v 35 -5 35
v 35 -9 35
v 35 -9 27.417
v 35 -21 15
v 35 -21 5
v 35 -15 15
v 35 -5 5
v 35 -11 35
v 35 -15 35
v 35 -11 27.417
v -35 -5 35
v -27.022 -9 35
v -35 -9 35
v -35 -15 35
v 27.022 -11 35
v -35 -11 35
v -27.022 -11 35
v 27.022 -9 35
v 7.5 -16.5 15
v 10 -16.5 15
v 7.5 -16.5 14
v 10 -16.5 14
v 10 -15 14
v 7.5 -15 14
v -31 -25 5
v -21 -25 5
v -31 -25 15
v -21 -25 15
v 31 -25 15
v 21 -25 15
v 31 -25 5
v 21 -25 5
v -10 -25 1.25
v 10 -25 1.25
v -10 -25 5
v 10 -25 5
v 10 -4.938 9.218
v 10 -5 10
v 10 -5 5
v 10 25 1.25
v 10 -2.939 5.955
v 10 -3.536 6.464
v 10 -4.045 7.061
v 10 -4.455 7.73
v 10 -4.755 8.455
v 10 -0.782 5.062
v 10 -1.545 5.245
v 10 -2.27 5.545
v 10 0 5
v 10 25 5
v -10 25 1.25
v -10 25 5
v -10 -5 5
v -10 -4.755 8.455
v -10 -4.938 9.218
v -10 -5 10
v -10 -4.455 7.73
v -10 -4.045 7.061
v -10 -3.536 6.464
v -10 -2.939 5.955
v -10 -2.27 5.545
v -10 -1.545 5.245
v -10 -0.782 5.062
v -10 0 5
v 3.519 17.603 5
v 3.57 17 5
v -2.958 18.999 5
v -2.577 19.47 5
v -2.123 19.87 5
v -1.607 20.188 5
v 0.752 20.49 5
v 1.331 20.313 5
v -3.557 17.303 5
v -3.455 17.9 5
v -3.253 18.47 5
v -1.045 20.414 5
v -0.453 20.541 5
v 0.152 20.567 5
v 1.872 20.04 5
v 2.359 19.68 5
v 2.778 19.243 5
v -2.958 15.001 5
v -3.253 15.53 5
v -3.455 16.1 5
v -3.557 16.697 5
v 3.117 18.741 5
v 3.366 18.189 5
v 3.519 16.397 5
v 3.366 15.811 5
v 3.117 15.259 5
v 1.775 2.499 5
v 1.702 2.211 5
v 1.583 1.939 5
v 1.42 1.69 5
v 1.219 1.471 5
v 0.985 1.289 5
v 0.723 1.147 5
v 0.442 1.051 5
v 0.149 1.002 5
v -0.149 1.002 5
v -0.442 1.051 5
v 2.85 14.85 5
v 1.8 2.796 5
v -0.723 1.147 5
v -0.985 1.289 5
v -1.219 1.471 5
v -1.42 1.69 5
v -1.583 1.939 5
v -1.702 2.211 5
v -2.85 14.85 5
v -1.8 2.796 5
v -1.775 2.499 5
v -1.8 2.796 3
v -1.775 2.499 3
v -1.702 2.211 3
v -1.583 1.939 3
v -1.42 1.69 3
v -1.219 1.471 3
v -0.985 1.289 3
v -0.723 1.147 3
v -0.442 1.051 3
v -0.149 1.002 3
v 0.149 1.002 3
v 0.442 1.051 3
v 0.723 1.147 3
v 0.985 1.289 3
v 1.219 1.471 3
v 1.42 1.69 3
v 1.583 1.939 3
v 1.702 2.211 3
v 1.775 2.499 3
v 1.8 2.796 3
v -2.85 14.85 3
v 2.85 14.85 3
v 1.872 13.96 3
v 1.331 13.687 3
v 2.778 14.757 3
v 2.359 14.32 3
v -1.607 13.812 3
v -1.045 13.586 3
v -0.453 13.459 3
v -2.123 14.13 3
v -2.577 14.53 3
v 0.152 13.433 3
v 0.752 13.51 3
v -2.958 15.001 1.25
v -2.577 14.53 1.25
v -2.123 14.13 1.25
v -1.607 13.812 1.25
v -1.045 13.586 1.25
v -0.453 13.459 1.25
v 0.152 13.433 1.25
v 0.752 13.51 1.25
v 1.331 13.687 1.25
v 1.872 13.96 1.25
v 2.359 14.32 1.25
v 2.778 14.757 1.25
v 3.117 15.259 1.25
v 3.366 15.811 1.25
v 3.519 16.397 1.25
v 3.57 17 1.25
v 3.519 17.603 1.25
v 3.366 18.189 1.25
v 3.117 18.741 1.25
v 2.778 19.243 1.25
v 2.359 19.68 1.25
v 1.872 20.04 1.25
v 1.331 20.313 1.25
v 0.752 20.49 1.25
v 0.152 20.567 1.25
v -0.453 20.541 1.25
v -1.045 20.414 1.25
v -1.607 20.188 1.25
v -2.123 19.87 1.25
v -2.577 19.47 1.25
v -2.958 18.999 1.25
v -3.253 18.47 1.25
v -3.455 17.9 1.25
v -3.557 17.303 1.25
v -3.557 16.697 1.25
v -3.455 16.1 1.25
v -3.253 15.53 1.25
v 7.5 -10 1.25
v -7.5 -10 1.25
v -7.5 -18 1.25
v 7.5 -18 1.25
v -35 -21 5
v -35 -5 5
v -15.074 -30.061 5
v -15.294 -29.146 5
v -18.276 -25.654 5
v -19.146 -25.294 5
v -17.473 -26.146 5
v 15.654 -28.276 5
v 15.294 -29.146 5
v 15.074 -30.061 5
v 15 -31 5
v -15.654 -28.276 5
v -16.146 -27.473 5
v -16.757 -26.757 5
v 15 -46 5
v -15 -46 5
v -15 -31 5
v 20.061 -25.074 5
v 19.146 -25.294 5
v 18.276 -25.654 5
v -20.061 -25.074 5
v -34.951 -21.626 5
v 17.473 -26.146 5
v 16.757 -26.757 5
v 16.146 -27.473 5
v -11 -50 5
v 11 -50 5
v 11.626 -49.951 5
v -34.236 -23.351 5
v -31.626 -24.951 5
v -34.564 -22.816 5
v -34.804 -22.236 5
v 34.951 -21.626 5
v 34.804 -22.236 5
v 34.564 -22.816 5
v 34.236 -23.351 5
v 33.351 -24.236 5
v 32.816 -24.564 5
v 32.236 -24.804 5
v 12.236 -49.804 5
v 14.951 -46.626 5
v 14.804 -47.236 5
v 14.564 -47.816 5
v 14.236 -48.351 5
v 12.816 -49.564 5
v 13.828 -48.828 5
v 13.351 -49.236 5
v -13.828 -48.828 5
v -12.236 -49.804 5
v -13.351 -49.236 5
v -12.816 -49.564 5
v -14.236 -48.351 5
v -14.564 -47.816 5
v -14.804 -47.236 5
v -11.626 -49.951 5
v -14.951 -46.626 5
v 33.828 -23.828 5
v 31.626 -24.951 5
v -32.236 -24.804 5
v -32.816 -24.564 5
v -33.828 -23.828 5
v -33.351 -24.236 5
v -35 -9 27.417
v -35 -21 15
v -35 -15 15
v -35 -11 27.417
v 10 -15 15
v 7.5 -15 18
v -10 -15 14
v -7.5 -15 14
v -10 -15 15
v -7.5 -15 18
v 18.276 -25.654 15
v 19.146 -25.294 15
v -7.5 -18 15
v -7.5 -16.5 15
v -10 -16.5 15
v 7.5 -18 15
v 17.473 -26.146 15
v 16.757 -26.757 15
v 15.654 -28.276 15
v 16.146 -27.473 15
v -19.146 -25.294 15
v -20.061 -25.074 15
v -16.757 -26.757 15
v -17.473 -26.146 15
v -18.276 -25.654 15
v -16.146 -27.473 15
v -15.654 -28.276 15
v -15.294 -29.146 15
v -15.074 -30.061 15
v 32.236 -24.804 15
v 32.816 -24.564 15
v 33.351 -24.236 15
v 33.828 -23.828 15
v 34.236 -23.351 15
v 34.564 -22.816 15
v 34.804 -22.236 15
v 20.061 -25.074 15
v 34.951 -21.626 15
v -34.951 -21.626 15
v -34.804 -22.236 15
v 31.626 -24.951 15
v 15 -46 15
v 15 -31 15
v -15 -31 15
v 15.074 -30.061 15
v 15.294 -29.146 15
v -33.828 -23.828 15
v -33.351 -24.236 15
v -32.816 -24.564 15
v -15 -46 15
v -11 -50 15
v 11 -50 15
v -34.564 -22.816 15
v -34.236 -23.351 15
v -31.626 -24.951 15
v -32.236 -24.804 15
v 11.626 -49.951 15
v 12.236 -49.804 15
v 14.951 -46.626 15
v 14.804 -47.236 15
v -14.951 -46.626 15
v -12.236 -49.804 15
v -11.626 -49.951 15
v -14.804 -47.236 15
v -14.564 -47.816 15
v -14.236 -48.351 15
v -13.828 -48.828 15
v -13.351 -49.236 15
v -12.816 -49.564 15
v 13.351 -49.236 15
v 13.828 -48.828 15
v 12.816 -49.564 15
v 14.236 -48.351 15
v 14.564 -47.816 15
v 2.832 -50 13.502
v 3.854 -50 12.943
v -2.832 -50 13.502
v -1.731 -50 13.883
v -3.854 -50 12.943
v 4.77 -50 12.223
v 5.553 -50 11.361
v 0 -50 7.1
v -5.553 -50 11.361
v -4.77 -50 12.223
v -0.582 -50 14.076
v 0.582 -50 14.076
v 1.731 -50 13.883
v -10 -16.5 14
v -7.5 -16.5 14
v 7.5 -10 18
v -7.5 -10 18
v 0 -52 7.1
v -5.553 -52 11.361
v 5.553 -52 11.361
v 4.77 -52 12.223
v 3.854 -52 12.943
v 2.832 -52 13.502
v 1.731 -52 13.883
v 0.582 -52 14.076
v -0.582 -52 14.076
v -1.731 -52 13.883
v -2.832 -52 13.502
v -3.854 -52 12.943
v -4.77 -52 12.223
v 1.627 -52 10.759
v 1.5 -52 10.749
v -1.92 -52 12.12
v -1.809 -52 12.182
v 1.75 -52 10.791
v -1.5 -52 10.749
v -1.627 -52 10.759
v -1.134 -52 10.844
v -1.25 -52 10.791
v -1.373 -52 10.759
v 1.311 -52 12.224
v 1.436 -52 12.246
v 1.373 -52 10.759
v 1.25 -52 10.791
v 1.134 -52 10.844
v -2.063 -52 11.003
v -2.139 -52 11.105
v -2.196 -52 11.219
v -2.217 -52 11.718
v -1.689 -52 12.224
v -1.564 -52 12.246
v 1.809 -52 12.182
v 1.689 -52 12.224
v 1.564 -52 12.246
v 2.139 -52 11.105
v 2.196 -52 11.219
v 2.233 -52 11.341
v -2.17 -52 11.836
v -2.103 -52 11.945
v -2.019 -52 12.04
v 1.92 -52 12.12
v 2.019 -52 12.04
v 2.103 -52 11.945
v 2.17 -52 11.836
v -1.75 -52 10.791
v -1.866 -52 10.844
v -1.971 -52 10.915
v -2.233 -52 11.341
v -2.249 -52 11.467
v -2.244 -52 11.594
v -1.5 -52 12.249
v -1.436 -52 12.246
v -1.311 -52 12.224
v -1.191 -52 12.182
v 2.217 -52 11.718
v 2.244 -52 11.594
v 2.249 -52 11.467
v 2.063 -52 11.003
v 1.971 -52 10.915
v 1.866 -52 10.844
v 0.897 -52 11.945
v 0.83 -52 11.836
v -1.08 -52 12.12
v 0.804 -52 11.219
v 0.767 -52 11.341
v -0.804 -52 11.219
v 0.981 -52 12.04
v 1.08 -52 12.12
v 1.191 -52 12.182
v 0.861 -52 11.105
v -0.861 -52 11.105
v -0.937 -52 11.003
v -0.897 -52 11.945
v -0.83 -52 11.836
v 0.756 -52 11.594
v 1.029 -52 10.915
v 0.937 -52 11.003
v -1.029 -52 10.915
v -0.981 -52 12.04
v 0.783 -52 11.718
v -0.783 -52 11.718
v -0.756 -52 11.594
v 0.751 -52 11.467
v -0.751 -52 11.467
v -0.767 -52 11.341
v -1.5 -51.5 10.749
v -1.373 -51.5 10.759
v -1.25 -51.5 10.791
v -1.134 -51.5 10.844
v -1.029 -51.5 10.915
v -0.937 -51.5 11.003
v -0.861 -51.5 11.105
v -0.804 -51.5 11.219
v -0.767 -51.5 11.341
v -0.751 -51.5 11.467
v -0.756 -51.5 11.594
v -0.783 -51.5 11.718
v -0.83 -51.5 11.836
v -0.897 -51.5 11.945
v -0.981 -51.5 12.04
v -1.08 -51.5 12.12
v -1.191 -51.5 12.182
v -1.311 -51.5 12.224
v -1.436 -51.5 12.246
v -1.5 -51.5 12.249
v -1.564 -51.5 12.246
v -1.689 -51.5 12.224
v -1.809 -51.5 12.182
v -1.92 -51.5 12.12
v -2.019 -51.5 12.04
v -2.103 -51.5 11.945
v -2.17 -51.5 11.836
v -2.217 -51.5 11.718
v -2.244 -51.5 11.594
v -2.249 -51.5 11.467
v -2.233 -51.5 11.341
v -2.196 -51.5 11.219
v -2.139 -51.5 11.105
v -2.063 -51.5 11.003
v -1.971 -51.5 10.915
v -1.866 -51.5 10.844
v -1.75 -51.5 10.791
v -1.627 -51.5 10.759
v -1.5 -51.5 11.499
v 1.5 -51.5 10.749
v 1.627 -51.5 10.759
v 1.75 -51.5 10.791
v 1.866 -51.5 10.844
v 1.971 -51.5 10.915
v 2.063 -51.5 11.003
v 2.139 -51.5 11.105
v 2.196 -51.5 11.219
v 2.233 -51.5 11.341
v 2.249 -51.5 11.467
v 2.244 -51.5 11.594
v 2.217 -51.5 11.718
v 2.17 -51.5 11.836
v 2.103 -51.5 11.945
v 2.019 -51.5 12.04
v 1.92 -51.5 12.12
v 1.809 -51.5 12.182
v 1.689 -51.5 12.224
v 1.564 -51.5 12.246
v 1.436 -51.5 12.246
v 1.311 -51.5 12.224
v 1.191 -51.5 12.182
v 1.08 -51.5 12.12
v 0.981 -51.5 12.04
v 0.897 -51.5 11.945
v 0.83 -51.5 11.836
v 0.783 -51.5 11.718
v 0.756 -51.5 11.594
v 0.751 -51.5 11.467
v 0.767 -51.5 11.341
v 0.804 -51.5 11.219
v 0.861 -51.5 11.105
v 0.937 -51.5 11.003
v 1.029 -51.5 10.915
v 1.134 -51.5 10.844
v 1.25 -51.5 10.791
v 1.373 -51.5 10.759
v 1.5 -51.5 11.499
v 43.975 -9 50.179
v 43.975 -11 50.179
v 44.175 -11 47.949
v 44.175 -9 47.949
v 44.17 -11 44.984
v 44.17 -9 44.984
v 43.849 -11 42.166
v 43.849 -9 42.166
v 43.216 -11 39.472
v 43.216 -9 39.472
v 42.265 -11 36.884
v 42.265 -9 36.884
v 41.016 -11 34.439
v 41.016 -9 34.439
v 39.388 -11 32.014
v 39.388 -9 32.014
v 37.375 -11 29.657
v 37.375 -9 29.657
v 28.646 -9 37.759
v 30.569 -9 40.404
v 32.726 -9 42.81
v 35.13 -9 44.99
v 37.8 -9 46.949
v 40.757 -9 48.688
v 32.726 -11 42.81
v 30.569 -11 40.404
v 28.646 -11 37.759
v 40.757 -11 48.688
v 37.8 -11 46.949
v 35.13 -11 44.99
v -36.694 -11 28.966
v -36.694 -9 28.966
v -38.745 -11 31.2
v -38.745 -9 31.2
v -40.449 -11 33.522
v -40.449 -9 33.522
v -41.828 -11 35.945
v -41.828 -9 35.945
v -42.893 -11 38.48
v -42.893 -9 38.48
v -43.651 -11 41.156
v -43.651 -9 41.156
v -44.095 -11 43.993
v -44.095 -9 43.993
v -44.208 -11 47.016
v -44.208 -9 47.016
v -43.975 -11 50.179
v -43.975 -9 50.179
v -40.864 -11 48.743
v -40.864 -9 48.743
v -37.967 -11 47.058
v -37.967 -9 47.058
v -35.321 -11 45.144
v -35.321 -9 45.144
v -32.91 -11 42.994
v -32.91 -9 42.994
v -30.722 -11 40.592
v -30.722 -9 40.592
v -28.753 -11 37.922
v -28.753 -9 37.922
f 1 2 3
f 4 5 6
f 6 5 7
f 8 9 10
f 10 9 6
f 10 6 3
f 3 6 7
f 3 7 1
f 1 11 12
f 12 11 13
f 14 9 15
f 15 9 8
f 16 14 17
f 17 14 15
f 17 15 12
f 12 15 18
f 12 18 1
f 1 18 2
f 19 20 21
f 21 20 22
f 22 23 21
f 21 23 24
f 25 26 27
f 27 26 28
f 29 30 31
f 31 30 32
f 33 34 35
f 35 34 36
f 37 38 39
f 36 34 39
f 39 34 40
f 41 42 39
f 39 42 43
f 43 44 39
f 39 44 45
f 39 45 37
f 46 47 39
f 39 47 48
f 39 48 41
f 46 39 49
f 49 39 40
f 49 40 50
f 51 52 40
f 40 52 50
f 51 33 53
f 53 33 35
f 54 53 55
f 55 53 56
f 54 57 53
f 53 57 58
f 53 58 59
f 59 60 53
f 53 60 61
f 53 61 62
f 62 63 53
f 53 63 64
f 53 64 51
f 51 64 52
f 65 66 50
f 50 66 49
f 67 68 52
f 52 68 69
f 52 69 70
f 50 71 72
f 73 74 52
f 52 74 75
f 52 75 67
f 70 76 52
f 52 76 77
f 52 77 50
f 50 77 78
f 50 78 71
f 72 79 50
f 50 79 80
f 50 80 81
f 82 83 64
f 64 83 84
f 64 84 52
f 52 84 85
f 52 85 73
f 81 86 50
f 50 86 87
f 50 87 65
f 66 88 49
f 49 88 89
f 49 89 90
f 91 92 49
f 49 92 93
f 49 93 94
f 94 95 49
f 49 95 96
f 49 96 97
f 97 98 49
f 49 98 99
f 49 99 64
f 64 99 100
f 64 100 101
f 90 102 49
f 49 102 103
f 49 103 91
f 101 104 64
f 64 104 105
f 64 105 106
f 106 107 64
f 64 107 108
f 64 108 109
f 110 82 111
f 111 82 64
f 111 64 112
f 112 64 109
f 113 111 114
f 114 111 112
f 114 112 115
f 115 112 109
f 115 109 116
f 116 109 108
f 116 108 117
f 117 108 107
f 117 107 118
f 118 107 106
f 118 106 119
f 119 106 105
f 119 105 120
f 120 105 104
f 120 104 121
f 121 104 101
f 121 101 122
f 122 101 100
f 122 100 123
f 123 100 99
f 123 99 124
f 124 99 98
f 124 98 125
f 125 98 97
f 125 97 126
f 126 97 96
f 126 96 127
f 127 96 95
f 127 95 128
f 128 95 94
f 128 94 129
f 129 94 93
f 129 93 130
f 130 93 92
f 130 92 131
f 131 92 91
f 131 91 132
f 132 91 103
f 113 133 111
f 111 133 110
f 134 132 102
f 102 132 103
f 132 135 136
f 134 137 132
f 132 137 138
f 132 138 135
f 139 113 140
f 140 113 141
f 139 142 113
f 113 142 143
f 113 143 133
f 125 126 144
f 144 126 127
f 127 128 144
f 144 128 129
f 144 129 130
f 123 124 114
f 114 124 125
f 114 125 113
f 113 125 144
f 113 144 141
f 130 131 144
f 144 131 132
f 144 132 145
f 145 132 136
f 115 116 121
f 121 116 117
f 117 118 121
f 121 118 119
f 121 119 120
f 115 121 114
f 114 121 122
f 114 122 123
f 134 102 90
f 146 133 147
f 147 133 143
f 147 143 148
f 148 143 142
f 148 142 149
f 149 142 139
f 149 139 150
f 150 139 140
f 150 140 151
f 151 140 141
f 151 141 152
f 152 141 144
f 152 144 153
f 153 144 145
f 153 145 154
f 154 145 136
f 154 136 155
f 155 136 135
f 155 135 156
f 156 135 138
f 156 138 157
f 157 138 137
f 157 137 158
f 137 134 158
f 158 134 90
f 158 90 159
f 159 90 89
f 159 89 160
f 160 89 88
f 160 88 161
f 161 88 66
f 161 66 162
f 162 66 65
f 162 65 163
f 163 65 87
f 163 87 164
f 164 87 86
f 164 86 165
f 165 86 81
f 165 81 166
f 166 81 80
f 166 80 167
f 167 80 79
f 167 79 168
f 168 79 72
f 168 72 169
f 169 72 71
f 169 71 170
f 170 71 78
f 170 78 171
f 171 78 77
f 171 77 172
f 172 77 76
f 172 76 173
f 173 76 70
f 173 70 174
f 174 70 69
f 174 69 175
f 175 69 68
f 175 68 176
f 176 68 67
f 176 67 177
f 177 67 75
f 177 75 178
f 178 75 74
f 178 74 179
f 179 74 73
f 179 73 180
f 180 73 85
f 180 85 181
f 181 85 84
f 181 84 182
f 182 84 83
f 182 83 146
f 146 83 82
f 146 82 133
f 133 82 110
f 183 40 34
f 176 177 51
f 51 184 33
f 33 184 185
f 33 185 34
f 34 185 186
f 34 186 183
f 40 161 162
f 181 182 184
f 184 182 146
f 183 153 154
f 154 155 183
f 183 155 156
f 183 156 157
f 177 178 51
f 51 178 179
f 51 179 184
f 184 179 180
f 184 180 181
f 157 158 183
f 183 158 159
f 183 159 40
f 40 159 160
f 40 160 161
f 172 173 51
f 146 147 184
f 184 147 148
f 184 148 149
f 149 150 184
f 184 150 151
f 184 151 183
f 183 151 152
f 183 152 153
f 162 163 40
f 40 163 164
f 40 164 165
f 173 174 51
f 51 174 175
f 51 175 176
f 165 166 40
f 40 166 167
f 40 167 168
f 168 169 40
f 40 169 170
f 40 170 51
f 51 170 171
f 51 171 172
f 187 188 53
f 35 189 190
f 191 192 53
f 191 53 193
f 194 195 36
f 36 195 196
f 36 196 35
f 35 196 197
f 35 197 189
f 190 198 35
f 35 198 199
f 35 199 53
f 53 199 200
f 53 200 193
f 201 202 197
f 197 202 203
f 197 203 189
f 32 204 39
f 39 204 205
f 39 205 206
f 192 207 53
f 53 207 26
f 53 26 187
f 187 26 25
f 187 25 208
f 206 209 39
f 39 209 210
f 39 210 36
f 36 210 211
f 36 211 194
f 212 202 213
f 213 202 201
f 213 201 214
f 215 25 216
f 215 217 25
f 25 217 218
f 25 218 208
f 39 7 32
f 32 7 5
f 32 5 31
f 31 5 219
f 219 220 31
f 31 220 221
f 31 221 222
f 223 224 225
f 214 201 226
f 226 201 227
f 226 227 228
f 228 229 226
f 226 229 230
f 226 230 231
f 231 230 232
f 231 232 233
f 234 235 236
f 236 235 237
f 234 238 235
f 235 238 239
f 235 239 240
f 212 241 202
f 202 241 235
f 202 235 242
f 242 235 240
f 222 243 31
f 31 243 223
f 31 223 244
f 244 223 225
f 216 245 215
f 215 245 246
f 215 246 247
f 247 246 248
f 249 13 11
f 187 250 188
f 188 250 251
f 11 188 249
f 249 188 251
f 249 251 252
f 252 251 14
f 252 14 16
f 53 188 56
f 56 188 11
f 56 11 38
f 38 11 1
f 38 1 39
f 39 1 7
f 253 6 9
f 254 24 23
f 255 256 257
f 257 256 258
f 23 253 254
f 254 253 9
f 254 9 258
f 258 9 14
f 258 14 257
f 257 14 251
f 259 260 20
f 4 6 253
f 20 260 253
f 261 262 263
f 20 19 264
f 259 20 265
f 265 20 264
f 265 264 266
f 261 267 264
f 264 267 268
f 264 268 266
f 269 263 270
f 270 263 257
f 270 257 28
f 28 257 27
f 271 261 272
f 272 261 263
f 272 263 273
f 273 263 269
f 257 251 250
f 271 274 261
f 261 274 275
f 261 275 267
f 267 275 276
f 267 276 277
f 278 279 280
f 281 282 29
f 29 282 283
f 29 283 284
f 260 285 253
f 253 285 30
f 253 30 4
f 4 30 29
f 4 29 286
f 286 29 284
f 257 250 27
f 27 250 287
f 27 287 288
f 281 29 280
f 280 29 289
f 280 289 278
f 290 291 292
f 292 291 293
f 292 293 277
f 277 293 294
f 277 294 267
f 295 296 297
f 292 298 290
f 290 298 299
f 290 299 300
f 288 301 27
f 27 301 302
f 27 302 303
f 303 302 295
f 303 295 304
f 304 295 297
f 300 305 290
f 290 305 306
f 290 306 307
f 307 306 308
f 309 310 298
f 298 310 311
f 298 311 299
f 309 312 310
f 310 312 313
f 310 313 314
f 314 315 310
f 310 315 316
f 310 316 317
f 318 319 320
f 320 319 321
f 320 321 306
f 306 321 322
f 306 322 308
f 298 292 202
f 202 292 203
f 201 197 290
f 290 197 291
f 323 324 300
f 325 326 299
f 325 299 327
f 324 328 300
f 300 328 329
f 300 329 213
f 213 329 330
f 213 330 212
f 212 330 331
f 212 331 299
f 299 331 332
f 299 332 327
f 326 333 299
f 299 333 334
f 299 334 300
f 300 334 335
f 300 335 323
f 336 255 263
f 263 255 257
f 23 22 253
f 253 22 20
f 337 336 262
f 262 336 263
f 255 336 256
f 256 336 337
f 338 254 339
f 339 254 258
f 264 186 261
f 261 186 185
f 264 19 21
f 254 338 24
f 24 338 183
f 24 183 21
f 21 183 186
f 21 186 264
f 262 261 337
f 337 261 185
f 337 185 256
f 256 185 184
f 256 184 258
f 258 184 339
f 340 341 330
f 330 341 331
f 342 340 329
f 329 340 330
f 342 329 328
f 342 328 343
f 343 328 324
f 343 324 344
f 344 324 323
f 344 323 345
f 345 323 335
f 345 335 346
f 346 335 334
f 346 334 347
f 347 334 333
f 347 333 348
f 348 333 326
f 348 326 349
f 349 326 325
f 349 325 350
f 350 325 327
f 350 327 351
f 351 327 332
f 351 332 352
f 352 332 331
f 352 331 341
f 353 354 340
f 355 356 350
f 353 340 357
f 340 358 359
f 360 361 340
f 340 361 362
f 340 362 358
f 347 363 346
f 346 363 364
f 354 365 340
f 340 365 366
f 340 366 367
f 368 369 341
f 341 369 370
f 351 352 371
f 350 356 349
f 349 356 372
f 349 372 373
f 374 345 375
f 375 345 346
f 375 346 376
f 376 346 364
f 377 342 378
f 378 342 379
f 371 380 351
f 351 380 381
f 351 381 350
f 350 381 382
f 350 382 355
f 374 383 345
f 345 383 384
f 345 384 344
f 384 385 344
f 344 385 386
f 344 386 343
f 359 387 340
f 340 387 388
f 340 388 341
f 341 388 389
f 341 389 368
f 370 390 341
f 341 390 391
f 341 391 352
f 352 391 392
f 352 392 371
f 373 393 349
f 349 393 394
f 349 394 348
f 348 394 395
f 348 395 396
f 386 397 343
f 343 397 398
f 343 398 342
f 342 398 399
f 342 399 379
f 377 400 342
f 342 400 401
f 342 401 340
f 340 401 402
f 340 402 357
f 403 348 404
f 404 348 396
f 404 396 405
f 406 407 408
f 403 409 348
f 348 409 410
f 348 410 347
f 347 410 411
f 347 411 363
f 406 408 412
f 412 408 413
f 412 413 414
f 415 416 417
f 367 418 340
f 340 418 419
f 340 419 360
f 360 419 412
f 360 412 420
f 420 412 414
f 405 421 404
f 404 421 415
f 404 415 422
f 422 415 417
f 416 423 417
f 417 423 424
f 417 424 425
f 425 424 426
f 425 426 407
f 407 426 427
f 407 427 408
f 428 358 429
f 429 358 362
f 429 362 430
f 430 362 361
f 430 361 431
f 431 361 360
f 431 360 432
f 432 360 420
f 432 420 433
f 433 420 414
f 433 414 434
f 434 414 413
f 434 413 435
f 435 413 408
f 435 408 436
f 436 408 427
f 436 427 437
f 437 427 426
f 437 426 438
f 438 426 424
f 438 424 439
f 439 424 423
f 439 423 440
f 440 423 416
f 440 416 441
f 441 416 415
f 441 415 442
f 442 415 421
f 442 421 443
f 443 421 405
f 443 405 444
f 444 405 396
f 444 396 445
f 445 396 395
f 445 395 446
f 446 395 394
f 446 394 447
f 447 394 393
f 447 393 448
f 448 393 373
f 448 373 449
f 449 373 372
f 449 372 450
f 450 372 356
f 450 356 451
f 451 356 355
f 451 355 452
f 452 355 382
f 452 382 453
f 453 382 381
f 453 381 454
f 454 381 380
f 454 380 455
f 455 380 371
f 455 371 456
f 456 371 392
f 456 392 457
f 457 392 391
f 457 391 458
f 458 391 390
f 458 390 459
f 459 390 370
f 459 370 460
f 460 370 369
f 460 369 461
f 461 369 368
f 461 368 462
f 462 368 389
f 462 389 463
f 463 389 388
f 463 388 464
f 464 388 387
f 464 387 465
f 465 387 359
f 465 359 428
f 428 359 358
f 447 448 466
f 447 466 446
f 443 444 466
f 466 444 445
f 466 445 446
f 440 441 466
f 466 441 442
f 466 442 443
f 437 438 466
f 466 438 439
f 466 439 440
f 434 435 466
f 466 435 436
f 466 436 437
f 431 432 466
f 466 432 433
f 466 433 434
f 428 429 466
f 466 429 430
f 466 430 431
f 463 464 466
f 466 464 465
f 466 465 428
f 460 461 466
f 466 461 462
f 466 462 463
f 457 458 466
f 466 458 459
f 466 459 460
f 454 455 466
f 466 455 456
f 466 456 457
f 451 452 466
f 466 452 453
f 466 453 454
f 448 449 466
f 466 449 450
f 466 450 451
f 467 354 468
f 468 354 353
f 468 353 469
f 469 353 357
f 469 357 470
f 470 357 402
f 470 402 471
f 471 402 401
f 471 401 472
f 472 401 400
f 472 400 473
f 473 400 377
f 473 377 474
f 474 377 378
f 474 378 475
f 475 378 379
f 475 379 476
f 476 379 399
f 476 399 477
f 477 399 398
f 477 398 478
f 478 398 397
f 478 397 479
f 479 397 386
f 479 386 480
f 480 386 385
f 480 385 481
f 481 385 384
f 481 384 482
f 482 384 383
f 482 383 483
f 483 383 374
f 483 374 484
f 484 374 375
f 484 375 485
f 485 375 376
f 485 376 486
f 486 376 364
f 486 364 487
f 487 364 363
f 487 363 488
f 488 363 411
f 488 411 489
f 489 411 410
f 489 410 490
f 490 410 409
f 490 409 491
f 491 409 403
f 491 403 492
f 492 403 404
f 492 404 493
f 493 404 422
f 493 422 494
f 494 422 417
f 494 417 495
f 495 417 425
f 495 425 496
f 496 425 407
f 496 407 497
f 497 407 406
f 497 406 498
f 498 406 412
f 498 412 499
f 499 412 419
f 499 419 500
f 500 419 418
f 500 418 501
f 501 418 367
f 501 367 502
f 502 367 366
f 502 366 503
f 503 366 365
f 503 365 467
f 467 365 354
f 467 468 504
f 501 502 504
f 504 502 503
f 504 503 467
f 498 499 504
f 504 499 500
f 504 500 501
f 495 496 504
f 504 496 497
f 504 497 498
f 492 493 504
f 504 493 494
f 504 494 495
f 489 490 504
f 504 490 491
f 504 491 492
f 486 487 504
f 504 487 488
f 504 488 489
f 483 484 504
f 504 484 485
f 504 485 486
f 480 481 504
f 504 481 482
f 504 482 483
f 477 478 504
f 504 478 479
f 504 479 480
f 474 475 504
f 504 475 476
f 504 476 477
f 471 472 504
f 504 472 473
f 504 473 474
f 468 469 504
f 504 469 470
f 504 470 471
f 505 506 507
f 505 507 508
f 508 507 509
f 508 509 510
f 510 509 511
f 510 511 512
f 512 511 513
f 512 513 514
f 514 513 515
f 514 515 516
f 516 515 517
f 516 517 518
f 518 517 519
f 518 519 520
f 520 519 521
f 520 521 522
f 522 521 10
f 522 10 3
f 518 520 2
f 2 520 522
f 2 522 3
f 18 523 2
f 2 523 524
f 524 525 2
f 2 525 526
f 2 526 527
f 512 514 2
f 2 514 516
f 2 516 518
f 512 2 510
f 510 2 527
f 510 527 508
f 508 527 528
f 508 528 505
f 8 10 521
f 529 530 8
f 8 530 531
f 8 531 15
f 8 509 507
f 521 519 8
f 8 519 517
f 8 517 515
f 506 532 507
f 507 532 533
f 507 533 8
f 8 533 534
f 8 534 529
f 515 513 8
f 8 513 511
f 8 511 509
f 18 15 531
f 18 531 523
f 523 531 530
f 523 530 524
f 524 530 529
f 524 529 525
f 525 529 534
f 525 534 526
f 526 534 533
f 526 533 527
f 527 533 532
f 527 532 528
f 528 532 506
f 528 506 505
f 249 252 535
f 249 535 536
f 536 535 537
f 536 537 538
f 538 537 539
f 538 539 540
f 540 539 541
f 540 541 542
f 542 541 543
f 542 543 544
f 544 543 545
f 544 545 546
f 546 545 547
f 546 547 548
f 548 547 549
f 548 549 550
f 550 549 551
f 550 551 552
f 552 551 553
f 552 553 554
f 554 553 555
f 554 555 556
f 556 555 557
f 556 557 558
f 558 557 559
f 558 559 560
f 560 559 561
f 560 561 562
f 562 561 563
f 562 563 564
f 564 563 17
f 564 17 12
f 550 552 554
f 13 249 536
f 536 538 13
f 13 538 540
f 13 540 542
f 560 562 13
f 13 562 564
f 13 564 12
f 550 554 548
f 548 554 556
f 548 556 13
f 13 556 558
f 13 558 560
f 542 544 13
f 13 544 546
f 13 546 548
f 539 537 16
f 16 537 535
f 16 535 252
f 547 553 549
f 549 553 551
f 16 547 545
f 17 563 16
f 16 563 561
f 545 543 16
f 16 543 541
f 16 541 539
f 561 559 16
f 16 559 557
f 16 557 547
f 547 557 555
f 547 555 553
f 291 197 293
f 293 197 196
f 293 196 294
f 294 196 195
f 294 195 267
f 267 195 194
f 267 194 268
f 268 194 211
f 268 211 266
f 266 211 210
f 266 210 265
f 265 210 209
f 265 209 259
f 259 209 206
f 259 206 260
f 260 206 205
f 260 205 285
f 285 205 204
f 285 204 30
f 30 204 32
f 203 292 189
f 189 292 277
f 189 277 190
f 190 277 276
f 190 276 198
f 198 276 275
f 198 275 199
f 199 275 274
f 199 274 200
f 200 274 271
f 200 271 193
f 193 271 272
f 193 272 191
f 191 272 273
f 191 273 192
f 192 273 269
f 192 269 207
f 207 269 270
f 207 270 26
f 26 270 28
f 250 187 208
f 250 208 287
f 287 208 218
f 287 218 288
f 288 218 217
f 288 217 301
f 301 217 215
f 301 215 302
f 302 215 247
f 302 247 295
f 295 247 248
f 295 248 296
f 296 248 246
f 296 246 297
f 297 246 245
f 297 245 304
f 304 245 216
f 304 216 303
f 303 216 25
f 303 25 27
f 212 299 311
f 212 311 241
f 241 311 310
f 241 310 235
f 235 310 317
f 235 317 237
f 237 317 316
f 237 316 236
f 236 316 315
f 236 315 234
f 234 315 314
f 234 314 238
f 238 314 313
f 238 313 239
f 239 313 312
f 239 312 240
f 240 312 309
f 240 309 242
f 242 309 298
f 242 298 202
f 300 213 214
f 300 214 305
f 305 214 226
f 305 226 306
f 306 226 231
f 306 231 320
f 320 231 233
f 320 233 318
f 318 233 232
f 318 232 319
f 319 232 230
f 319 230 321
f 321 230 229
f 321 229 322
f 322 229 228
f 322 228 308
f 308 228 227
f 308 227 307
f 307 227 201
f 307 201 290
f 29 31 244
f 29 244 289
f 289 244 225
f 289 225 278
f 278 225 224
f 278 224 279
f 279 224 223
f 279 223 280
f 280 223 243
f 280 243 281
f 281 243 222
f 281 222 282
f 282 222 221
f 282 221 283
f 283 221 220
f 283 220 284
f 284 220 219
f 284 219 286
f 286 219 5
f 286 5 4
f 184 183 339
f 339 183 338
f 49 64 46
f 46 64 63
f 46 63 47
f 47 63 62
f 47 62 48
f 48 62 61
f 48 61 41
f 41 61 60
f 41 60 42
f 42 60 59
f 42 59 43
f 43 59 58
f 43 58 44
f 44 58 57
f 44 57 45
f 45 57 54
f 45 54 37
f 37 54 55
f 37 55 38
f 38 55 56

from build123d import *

# Parameters (mm, degrees)
SKETCH3_W            = 20
SKETCH3_H            = 50
BOSS_EXTRUDE3_DEPTH  = 5
CUT_EXTRUDE2_DEPTH   = 2
SKETCH6_R            = 3.57
CUT_EXTRUDE3_DEPTH   = 3
SKETCH8_W            = 1.25
SKETCH8_H            = 50
CUT_EXTRUDE5_DEPTH   = 30
SKETCH9_W            = 70
SKETCH9_H            = 20
BOSS_EXTRUDE4_DEPTH  = 20
SKETCH10_W           = 70
SKETCH10_H           = 10
CUT_EXTRUDE6_DEPTH   = 10
SKETCH11_W           = 30
SKETCH11_H           = 10
BOSS_EXTRUDE5_DEPTH  = 25
SKETCH12_W           = 20
SKETCH12_H           = 1.5
CUT_EXTRUDE7_DEPTH   = 1
SKETCH13_W           = 15
SKETCH13_H           = 38.806898948
CUT_EXTRUDE8_DEPTH   = 13
BOSS_EXTRUDE6_DEPTH  = 2
SKETCH16_R           = 0.75
CUT_EXTRUDE9_DEPTH   = 0.5
SKETCH19_W           = 70
SKETCH19_H           = 10
BOSS_EXTRUDE8_DEPTH  = 10
BOSS_EXTRUDE9_DEPTH  = 2
FILLET1_R            = 6
FILLET2_R            = 4
SKETCH22_W           = 15
SKETCH22_H           = 5
BOSS_EXTRUDE10_DEPTH = 25
FILLET3_R            = 5


with BuildPart() as part:
    # Sketch3 → Boss-Extrude3 (new body)
    with BuildSketch(Plane.XY):
        Rectangle(SKETCH3_W, SKETCH3_H)
    extrude(amount=BOSS_EXTRUDE3_DEPTH)

    # Sketch4 → Cut-Extrude2 (cut)
    with BuildSketch(Plane.XY.offset(5)):
        with BuildLine():
            Line((-2.85, 14.850023256), (-1.8, 2.795667197))
            Line((-1.8, 2.795667197), (1.8, 2.795667197))
            Line((1.8, 2.795667197), (2.85, 14.850023256))
            ThreePointArc((2.85, 14.850023256), (0, 13.43), (-2.85, 14.850023256))
        make_face()
        with BuildLine():
            Line((1.8, 2.795667197), (-1.8, 2.795667197))
            ThreePointArc((-1.8, 2.795667197), (0, 0.995667197), (1.8, 2.795667197))
        make_face()
        with BuildLine():
            ThreePointArc((3.57, 17), (-1.133666618, 20.385217866), (-2.85, 14.850023256))
            Line((-2.85, 14.850023256), (2.85, 14.850023256))
            ThreePointArc((2.85, 14.850023256), (3.385217866, 15.866333382), (3.57, 17))
        make_face()
        with BuildLine():
            Line((2.85, 14.850023256), (-2.85, 14.850023256))
            ThreePointArc((-2.85, 14.850023256), (0, 13.43), (2.85, 14.850023256))
        make_face()
    extrude(amount=-CUT_EXTRUDE2_DEPTH, mode=Mode.SUBTRACT)

    # Sketch6 → Cut-Extrude3 (cut)
    with BuildSketch(Plane.XY.offset(3)):
        with Locations((0, 17)):
            Circle(SKETCH6_R)
    extrude(amount=-CUT_EXTRUDE3_DEPTH, mode=Mode.SUBTRACT)

    # Sketch8 → Cut-Extrude5 (cut)
    with BuildSketch(Plane(origin=(10, 0, 0), x_dir=(0, 0, -1), z_dir=(1, 0, 0))):
        with Locations((-0.625, 0)):
            Rectangle(SKETCH8_W, SKETCH8_H)
    extrude(amount=-CUT_EXTRUDE5_DEPTH, mode=Mode.SUBTRACT)

    # Sketch9 → Boss-Extrude4 (add)
    with BuildSketch(Plane.XY.offset(5)):
        with Locations((0, -15)):
            Rectangle(SKETCH9_W, SKETCH9_H)
    extrude(amount=BOSS_EXTRUDE4_DEPTH)

    # Sketch10 → Cut-Extrude6 (cut)
    with BuildSketch(Plane.XY.offset(25)):
        with Locations((0, -20)):
            Rectangle(SKETCH10_W, SKETCH10_H)
    extrude(amount=-CUT_EXTRUDE6_DEPTH, mode=Mode.SUBTRACT)

    # Sketch11 → Boss-Extrude5 (add)
    with BuildSketch(Plane(origin=(0, -25, 0), x_dir=(-1, 0, 0), z_dir=(0, -1, 0))):
        with Locations((0, -10)):
            Rectangle(SKETCH11_W, SKETCH11_H)
    extrude(amount=BOSS_EXTRUDE5_DEPTH)

    # Sketch12 → Cut-Extrude7 (cut)
    with BuildSketch(Plane.XY.offset(15)):
        with Locations((0, -15.75)):
            Rectangle(SKETCH12_W, SKETCH12_H)
    extrude(amount=-CUT_EXTRUDE7_DEPTH, mode=Mode.SUBTRACT)

    # Sketch13 → Cut-Extrude8 (cut)
    with BuildSketch(Plane(origin=(0, -5, 0), x_dir=(1, 0, 0), z_dir=(0, 1, 0))):
        with Locations((0, 1.403449474)):
            Rectangle(SKETCH13_W, SKETCH13_H)
    extrude(amount=-CUT_EXTRUDE8_DEPTH, mode=Mode.SUBTRACT)

    # Sketch15 → Boss-Extrude6 (add)
    with BuildSketch(Plane.XZ.offset(50)):
        with BuildLine():
            Line((0, 7.1), (5.553473382, 11.361330003))
            ThreePointArc((5.553473382, 11.361330003), (0, 14.1), (-5.553473382, 11.361330003))
            Line((-5.553473382, 11.361330003), (0, 7.1))
        make_face()
    extrude(amount=BOSS_EXTRUDE6_DEPTH)

    # Sketch16 → Cut-Extrude9 (cut)
    with BuildSketch(Plane(origin=(0, -52, 0), x_dir=(-1, 0, 0), z_dir=(0, -1, 0))):
        with Locations((-1.5, -11.498525774)):
            Circle(SKETCH16_R)
        with Locations((1.5, -11.498525774)):
            Circle(SKETCH16_R)
    extrude(amount=-CUT_EXTRUDE9_DEPTH, mode=Mode.SUBTRACT)

    # Sketch19 → Boss-Extrude8 (add)
    with BuildSketch(Plane.XY.offset(25)):
        with Locations((0, -10)):
            Rectangle(SKETCH19_W, SKETCH19_H)
    extrude(amount=BOSS_EXTRUDE8_DEPTH)

    # Sketch21 → Boss-Extrude9 (add)
    with BuildSketch(Plane(origin=(0, -11, 0), x_dir=(-1, 0, 0), z_dir=(0, -1, 0))):
        with BuildLine():
            Line((-24.95459775, -30.351053915), (-33.467453748, -26.18260363))
            add(Edge.make_bspline(
                [(-33.467453748, -26.18260363), (-45.809189014, -35.587529887), (-43.975470741, -50.179256657)],
                knots=[0, 0, 0, 1, 1, 1], degree=2))
            add(Edge.make_bspline(
                [(-24.95459775, -30.351053915), (-30.210326616, -44.560066847), (-43.975470741, -50.179256657)],
                knots=[0, 0, 0, 1, 1, 1], degree=2))
        make_face()
        with BuildLine():
            Line((24.95459775, -30.351053915), (33.467453748, -26.18260363))
            add(Edge.make_bspline(
                [(33.467453748, -26.18260363), (45.809189014, -35.587529887), (43.975470741, -50.179256657)],
                knots=[0, 0, 0, 1, 1, 1], degree=2))
            add(Edge.make_bspline(
                [(24.95459775, -30.351053915), (30.210326616, -44.560066847), (43.975470741, -50.179256657)],
                knots=[0, 0, 0, 1, 1, 1], degree=2))
        make_face()
    extrude(amount=-BOSS_EXTRUDE9_DEPTH)

    # Fillet1
    fillet1_edges = [part.edges().sort_by_distance(p)[0] for p in [
        (-15, -25, 10),
        (15, -25, 10),
    ]]
    fillet(fillet1_edges, radius=FILLET1_R)

    # Fillet2
    fillet2_edges = [part.edges().sort_by_distance(p)[0] for p in [
        (35, -25, 10),
        (-35, -25, 10),
        (-15, -50, 10),
        (15, -50, 10),
    ]]
    fillet(fillet2_edges, radius=FILLET2_R)

    # Sketch22 → Boss-Extrude10 (add)
    with BuildSketch(Plane(origin=(0, 0, 1.25), x_dir=(-1, 0, 0), z_dir=(0, 0, -1))):
        with Locations((0, -7.5)):
            Rectangle(SKETCH22_W, SKETCH22_H)
    extrude(amount=-BOSS_EXTRUDE10_DEPTH)

    # Fillet3
    fillet3_edges = [part.edges().sort_by_distance(p)[0] for p in [
        (0, -5, 5),
    ]]
    fillet(fillet3_edges, radius=FILLET3_R)


solid = part.part
